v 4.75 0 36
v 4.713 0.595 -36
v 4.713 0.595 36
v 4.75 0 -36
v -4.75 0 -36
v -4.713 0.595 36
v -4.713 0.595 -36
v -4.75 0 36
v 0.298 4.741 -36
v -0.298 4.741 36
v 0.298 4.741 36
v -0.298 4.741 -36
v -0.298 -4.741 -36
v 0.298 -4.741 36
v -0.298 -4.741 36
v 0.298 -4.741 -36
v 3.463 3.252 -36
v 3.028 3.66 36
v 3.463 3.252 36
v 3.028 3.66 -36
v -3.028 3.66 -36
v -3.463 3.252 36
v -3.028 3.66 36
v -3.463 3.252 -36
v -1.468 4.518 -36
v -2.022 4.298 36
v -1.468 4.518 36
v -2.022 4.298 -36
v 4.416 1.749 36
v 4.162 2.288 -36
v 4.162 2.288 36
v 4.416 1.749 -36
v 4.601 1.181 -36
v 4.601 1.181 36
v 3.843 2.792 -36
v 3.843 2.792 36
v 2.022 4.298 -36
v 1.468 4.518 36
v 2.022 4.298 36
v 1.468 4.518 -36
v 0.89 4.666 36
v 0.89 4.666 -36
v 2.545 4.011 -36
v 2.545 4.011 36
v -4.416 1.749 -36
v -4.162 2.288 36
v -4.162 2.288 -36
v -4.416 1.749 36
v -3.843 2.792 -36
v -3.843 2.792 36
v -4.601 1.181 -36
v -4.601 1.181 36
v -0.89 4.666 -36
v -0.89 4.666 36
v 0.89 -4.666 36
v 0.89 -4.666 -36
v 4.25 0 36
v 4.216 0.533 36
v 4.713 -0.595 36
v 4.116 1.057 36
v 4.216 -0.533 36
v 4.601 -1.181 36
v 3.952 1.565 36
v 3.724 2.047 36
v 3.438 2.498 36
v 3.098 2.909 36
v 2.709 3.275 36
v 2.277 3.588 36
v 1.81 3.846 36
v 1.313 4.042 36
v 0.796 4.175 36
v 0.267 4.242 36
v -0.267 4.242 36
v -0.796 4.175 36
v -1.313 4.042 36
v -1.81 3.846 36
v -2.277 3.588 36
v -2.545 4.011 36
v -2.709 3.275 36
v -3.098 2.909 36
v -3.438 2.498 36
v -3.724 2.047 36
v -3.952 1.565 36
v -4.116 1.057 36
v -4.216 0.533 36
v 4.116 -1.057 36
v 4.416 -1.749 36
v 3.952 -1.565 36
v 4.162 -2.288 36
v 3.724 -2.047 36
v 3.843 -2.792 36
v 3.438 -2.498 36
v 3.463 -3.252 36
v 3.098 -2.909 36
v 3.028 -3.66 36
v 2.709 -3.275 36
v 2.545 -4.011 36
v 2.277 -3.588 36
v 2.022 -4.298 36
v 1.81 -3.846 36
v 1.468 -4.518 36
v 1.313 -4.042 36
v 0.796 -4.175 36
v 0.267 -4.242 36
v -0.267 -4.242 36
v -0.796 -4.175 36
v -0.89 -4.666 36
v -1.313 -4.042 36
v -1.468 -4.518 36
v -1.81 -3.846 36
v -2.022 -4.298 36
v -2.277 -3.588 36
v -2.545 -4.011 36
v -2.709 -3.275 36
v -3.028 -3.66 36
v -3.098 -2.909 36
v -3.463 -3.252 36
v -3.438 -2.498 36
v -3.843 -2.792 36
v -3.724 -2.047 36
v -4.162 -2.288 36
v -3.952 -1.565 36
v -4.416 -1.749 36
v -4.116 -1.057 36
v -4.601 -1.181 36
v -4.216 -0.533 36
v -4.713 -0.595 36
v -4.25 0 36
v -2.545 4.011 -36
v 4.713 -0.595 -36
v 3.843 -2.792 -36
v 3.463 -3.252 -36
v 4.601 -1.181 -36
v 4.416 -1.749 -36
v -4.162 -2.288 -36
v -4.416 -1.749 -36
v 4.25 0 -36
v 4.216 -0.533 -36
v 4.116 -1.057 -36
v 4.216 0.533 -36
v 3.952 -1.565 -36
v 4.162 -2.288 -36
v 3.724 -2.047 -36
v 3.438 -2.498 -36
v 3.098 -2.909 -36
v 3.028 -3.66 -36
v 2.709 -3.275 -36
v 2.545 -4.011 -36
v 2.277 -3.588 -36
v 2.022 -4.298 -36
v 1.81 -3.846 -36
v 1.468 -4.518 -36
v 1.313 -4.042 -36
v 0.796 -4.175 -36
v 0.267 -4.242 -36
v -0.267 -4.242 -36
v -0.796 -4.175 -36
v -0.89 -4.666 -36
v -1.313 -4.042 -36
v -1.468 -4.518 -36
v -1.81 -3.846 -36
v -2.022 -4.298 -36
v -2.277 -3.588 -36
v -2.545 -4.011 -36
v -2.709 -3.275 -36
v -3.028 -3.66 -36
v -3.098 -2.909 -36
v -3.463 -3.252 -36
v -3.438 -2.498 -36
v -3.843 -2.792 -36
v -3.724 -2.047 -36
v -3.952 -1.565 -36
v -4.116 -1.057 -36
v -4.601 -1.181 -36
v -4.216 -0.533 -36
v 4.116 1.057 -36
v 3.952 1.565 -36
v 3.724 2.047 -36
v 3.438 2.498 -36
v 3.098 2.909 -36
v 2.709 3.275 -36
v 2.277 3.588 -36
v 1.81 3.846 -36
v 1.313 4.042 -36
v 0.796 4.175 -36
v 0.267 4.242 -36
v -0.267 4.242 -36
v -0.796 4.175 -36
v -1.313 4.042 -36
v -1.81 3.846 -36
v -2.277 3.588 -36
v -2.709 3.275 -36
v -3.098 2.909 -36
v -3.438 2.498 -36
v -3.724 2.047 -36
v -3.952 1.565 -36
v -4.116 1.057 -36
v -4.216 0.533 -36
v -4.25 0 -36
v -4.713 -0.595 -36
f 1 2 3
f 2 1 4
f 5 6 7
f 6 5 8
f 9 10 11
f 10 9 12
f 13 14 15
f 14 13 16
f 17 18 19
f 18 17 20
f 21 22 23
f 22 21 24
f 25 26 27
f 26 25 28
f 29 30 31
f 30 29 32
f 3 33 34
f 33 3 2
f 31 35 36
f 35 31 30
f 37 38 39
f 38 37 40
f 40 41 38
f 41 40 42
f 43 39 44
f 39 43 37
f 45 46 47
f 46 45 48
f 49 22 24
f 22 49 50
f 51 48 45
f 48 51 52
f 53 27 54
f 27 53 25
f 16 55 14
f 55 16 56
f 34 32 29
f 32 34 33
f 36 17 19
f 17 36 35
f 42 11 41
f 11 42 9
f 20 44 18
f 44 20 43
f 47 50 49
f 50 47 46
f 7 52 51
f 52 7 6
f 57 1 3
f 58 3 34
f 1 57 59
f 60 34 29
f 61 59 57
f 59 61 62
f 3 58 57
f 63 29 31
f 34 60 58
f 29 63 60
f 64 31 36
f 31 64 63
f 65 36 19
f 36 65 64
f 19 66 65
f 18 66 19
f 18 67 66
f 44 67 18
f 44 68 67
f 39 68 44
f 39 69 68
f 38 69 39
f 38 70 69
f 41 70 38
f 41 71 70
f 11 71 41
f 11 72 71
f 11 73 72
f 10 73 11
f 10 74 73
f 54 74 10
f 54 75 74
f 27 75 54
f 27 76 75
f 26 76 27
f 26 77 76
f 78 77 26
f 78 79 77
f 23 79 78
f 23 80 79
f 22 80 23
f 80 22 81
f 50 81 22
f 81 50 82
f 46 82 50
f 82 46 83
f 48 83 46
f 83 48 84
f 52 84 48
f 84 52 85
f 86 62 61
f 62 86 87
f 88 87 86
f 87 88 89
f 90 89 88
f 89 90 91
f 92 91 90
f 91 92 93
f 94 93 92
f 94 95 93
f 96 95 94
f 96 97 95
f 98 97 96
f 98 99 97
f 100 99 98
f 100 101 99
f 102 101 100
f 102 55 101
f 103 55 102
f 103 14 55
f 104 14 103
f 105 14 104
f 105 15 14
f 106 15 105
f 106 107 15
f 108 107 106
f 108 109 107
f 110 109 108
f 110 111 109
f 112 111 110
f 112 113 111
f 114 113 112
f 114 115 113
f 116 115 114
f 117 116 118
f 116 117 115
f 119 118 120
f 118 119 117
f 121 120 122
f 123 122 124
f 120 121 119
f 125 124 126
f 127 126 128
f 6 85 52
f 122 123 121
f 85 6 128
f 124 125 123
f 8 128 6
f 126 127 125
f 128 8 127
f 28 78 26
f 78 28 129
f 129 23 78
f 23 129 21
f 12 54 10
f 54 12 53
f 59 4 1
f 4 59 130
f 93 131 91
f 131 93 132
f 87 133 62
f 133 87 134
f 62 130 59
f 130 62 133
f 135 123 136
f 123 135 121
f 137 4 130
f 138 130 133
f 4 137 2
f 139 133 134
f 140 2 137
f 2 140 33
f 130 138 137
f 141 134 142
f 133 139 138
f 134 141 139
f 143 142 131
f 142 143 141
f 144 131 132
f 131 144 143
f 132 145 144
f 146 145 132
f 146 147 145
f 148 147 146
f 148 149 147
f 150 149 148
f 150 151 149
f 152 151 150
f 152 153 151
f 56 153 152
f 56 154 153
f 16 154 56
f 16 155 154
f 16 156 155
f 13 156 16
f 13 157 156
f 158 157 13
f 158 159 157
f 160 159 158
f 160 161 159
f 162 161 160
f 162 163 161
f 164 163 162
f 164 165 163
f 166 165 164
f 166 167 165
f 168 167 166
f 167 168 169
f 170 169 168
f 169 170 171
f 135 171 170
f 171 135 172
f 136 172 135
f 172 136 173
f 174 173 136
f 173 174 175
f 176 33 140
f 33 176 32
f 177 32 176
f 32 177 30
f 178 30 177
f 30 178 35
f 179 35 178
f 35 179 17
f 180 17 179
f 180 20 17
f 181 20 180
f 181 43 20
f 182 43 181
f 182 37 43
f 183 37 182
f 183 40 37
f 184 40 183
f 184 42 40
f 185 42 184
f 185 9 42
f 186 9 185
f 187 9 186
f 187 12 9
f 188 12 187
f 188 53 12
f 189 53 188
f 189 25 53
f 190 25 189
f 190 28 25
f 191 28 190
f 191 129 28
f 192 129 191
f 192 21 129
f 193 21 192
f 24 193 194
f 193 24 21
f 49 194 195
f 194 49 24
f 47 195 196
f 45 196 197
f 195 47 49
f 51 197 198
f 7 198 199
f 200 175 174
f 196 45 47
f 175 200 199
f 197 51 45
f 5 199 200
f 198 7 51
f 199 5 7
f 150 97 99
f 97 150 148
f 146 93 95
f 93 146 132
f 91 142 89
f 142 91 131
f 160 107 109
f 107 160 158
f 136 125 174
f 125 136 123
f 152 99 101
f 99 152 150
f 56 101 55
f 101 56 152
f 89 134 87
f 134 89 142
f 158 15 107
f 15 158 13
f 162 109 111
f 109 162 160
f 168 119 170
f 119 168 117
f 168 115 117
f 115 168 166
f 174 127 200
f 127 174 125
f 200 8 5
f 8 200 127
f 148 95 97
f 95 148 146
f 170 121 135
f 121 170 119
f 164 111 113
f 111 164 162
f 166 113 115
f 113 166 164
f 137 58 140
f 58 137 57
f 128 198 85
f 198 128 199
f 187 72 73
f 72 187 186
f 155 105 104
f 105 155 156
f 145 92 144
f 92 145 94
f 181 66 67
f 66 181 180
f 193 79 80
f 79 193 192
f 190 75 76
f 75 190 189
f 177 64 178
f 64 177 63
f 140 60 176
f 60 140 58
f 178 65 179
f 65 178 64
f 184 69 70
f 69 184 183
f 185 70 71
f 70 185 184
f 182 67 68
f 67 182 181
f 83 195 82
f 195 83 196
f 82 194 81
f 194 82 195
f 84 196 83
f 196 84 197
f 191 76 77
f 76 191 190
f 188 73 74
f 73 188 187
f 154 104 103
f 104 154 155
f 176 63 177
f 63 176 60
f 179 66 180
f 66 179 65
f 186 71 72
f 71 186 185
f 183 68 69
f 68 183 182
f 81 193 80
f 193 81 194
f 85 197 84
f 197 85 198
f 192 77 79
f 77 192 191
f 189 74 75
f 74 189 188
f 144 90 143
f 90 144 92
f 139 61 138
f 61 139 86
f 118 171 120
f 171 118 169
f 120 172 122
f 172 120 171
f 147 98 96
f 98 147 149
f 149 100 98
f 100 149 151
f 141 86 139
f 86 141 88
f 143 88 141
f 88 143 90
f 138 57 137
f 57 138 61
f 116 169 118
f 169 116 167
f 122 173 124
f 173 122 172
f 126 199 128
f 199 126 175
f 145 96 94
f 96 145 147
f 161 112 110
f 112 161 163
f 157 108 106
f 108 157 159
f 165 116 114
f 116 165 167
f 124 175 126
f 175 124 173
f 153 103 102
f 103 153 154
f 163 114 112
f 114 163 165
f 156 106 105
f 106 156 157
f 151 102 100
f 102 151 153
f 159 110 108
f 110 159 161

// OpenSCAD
$fn = 50;


difference() {
	union() {
		translate(v = [0, 0, -36.0000000000]) {
			cylinder(h = 72, r = 4.7500000000);
		}
	}
	union() {
		translate(v = [0, 0, -100.0000000000]) {
			cylinder(h = 200, r = 4.2500000000);
		}
	}
}
